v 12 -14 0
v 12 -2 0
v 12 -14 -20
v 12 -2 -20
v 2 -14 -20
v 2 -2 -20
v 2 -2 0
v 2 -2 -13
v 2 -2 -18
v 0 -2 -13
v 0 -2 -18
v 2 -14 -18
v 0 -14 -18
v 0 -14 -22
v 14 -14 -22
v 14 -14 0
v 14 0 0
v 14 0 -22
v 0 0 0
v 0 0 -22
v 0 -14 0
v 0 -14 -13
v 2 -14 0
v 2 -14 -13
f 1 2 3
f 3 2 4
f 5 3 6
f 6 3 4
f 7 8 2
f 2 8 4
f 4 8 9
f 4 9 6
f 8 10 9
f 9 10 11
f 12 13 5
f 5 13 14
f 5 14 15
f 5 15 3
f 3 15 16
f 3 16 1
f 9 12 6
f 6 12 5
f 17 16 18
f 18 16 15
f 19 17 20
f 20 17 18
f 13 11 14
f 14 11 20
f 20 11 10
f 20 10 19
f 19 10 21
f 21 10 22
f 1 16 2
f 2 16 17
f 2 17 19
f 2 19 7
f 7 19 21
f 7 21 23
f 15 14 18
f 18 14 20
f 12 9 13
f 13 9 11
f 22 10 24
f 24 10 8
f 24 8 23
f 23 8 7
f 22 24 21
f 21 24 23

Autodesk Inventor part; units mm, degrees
ref_plane "YZ Plane" through (0, 0, 0) normal (1, 0, 0) x (0, 1, 0)
ref_plane "XZ Plane" through (0, 0, 0) normal (0, 1, 0) x (-1, 0, 0)
ref_plane "XY Plane" through (0, 0, 0) normal (0, 0, 1) x (1, 0, 0)
sketch "Sketch1" plane through (0, 0, 0) normal (0, 0, 1) x (1, 0, 0)
  line L0 (0, 0) -> (14, 0)
  line L1 (14, 0) -> (14, -14)
  line L2 (14, -14) -> (0, -14)
  line L3 (0, -14) -> (0, 0)
  dimension "d0" = 14
  dimension "d1" = 14
extrude "Extrusion1" add sketch "Sketch1" against normal blind 22
sketch "Sketch2" plane through (0, 0, 0) normal (0, 0, 1) x (1, 0, 0)
  line L0 (2, -2) -> (12, -2)
  line L1 (12, -2) -> (12, -22)
  line L2 (12, -22) -> (2, -22)
  line L3 (2, -22) -> (2, -2)
  point P0 (0, 0)
  dimension "d4" = 10
  dimension "d5" = 20
extrude "Extrusion2" cut sketch "Sketch2" against normal blind 20
sketch "Sketch5" plane through (0, -14, 0) normal (-1, 0, 0) x (0, 0, 1)
  line L0 (-13, 12) -> (-18, 12)
  line L1 (-18, 12) -> (-18, -8)
  line L2 (-18, -8) -> (-13, -8)
  line L3 (-13, -8) -> (-13, 12)
  point P0 (0, 14)
  dimension "d11" = 5
  dimension "d12" = 20
extrude "Extrusion4" cut sketch "Sketch5" against normal blind 2
properties part number "housing_v03"
